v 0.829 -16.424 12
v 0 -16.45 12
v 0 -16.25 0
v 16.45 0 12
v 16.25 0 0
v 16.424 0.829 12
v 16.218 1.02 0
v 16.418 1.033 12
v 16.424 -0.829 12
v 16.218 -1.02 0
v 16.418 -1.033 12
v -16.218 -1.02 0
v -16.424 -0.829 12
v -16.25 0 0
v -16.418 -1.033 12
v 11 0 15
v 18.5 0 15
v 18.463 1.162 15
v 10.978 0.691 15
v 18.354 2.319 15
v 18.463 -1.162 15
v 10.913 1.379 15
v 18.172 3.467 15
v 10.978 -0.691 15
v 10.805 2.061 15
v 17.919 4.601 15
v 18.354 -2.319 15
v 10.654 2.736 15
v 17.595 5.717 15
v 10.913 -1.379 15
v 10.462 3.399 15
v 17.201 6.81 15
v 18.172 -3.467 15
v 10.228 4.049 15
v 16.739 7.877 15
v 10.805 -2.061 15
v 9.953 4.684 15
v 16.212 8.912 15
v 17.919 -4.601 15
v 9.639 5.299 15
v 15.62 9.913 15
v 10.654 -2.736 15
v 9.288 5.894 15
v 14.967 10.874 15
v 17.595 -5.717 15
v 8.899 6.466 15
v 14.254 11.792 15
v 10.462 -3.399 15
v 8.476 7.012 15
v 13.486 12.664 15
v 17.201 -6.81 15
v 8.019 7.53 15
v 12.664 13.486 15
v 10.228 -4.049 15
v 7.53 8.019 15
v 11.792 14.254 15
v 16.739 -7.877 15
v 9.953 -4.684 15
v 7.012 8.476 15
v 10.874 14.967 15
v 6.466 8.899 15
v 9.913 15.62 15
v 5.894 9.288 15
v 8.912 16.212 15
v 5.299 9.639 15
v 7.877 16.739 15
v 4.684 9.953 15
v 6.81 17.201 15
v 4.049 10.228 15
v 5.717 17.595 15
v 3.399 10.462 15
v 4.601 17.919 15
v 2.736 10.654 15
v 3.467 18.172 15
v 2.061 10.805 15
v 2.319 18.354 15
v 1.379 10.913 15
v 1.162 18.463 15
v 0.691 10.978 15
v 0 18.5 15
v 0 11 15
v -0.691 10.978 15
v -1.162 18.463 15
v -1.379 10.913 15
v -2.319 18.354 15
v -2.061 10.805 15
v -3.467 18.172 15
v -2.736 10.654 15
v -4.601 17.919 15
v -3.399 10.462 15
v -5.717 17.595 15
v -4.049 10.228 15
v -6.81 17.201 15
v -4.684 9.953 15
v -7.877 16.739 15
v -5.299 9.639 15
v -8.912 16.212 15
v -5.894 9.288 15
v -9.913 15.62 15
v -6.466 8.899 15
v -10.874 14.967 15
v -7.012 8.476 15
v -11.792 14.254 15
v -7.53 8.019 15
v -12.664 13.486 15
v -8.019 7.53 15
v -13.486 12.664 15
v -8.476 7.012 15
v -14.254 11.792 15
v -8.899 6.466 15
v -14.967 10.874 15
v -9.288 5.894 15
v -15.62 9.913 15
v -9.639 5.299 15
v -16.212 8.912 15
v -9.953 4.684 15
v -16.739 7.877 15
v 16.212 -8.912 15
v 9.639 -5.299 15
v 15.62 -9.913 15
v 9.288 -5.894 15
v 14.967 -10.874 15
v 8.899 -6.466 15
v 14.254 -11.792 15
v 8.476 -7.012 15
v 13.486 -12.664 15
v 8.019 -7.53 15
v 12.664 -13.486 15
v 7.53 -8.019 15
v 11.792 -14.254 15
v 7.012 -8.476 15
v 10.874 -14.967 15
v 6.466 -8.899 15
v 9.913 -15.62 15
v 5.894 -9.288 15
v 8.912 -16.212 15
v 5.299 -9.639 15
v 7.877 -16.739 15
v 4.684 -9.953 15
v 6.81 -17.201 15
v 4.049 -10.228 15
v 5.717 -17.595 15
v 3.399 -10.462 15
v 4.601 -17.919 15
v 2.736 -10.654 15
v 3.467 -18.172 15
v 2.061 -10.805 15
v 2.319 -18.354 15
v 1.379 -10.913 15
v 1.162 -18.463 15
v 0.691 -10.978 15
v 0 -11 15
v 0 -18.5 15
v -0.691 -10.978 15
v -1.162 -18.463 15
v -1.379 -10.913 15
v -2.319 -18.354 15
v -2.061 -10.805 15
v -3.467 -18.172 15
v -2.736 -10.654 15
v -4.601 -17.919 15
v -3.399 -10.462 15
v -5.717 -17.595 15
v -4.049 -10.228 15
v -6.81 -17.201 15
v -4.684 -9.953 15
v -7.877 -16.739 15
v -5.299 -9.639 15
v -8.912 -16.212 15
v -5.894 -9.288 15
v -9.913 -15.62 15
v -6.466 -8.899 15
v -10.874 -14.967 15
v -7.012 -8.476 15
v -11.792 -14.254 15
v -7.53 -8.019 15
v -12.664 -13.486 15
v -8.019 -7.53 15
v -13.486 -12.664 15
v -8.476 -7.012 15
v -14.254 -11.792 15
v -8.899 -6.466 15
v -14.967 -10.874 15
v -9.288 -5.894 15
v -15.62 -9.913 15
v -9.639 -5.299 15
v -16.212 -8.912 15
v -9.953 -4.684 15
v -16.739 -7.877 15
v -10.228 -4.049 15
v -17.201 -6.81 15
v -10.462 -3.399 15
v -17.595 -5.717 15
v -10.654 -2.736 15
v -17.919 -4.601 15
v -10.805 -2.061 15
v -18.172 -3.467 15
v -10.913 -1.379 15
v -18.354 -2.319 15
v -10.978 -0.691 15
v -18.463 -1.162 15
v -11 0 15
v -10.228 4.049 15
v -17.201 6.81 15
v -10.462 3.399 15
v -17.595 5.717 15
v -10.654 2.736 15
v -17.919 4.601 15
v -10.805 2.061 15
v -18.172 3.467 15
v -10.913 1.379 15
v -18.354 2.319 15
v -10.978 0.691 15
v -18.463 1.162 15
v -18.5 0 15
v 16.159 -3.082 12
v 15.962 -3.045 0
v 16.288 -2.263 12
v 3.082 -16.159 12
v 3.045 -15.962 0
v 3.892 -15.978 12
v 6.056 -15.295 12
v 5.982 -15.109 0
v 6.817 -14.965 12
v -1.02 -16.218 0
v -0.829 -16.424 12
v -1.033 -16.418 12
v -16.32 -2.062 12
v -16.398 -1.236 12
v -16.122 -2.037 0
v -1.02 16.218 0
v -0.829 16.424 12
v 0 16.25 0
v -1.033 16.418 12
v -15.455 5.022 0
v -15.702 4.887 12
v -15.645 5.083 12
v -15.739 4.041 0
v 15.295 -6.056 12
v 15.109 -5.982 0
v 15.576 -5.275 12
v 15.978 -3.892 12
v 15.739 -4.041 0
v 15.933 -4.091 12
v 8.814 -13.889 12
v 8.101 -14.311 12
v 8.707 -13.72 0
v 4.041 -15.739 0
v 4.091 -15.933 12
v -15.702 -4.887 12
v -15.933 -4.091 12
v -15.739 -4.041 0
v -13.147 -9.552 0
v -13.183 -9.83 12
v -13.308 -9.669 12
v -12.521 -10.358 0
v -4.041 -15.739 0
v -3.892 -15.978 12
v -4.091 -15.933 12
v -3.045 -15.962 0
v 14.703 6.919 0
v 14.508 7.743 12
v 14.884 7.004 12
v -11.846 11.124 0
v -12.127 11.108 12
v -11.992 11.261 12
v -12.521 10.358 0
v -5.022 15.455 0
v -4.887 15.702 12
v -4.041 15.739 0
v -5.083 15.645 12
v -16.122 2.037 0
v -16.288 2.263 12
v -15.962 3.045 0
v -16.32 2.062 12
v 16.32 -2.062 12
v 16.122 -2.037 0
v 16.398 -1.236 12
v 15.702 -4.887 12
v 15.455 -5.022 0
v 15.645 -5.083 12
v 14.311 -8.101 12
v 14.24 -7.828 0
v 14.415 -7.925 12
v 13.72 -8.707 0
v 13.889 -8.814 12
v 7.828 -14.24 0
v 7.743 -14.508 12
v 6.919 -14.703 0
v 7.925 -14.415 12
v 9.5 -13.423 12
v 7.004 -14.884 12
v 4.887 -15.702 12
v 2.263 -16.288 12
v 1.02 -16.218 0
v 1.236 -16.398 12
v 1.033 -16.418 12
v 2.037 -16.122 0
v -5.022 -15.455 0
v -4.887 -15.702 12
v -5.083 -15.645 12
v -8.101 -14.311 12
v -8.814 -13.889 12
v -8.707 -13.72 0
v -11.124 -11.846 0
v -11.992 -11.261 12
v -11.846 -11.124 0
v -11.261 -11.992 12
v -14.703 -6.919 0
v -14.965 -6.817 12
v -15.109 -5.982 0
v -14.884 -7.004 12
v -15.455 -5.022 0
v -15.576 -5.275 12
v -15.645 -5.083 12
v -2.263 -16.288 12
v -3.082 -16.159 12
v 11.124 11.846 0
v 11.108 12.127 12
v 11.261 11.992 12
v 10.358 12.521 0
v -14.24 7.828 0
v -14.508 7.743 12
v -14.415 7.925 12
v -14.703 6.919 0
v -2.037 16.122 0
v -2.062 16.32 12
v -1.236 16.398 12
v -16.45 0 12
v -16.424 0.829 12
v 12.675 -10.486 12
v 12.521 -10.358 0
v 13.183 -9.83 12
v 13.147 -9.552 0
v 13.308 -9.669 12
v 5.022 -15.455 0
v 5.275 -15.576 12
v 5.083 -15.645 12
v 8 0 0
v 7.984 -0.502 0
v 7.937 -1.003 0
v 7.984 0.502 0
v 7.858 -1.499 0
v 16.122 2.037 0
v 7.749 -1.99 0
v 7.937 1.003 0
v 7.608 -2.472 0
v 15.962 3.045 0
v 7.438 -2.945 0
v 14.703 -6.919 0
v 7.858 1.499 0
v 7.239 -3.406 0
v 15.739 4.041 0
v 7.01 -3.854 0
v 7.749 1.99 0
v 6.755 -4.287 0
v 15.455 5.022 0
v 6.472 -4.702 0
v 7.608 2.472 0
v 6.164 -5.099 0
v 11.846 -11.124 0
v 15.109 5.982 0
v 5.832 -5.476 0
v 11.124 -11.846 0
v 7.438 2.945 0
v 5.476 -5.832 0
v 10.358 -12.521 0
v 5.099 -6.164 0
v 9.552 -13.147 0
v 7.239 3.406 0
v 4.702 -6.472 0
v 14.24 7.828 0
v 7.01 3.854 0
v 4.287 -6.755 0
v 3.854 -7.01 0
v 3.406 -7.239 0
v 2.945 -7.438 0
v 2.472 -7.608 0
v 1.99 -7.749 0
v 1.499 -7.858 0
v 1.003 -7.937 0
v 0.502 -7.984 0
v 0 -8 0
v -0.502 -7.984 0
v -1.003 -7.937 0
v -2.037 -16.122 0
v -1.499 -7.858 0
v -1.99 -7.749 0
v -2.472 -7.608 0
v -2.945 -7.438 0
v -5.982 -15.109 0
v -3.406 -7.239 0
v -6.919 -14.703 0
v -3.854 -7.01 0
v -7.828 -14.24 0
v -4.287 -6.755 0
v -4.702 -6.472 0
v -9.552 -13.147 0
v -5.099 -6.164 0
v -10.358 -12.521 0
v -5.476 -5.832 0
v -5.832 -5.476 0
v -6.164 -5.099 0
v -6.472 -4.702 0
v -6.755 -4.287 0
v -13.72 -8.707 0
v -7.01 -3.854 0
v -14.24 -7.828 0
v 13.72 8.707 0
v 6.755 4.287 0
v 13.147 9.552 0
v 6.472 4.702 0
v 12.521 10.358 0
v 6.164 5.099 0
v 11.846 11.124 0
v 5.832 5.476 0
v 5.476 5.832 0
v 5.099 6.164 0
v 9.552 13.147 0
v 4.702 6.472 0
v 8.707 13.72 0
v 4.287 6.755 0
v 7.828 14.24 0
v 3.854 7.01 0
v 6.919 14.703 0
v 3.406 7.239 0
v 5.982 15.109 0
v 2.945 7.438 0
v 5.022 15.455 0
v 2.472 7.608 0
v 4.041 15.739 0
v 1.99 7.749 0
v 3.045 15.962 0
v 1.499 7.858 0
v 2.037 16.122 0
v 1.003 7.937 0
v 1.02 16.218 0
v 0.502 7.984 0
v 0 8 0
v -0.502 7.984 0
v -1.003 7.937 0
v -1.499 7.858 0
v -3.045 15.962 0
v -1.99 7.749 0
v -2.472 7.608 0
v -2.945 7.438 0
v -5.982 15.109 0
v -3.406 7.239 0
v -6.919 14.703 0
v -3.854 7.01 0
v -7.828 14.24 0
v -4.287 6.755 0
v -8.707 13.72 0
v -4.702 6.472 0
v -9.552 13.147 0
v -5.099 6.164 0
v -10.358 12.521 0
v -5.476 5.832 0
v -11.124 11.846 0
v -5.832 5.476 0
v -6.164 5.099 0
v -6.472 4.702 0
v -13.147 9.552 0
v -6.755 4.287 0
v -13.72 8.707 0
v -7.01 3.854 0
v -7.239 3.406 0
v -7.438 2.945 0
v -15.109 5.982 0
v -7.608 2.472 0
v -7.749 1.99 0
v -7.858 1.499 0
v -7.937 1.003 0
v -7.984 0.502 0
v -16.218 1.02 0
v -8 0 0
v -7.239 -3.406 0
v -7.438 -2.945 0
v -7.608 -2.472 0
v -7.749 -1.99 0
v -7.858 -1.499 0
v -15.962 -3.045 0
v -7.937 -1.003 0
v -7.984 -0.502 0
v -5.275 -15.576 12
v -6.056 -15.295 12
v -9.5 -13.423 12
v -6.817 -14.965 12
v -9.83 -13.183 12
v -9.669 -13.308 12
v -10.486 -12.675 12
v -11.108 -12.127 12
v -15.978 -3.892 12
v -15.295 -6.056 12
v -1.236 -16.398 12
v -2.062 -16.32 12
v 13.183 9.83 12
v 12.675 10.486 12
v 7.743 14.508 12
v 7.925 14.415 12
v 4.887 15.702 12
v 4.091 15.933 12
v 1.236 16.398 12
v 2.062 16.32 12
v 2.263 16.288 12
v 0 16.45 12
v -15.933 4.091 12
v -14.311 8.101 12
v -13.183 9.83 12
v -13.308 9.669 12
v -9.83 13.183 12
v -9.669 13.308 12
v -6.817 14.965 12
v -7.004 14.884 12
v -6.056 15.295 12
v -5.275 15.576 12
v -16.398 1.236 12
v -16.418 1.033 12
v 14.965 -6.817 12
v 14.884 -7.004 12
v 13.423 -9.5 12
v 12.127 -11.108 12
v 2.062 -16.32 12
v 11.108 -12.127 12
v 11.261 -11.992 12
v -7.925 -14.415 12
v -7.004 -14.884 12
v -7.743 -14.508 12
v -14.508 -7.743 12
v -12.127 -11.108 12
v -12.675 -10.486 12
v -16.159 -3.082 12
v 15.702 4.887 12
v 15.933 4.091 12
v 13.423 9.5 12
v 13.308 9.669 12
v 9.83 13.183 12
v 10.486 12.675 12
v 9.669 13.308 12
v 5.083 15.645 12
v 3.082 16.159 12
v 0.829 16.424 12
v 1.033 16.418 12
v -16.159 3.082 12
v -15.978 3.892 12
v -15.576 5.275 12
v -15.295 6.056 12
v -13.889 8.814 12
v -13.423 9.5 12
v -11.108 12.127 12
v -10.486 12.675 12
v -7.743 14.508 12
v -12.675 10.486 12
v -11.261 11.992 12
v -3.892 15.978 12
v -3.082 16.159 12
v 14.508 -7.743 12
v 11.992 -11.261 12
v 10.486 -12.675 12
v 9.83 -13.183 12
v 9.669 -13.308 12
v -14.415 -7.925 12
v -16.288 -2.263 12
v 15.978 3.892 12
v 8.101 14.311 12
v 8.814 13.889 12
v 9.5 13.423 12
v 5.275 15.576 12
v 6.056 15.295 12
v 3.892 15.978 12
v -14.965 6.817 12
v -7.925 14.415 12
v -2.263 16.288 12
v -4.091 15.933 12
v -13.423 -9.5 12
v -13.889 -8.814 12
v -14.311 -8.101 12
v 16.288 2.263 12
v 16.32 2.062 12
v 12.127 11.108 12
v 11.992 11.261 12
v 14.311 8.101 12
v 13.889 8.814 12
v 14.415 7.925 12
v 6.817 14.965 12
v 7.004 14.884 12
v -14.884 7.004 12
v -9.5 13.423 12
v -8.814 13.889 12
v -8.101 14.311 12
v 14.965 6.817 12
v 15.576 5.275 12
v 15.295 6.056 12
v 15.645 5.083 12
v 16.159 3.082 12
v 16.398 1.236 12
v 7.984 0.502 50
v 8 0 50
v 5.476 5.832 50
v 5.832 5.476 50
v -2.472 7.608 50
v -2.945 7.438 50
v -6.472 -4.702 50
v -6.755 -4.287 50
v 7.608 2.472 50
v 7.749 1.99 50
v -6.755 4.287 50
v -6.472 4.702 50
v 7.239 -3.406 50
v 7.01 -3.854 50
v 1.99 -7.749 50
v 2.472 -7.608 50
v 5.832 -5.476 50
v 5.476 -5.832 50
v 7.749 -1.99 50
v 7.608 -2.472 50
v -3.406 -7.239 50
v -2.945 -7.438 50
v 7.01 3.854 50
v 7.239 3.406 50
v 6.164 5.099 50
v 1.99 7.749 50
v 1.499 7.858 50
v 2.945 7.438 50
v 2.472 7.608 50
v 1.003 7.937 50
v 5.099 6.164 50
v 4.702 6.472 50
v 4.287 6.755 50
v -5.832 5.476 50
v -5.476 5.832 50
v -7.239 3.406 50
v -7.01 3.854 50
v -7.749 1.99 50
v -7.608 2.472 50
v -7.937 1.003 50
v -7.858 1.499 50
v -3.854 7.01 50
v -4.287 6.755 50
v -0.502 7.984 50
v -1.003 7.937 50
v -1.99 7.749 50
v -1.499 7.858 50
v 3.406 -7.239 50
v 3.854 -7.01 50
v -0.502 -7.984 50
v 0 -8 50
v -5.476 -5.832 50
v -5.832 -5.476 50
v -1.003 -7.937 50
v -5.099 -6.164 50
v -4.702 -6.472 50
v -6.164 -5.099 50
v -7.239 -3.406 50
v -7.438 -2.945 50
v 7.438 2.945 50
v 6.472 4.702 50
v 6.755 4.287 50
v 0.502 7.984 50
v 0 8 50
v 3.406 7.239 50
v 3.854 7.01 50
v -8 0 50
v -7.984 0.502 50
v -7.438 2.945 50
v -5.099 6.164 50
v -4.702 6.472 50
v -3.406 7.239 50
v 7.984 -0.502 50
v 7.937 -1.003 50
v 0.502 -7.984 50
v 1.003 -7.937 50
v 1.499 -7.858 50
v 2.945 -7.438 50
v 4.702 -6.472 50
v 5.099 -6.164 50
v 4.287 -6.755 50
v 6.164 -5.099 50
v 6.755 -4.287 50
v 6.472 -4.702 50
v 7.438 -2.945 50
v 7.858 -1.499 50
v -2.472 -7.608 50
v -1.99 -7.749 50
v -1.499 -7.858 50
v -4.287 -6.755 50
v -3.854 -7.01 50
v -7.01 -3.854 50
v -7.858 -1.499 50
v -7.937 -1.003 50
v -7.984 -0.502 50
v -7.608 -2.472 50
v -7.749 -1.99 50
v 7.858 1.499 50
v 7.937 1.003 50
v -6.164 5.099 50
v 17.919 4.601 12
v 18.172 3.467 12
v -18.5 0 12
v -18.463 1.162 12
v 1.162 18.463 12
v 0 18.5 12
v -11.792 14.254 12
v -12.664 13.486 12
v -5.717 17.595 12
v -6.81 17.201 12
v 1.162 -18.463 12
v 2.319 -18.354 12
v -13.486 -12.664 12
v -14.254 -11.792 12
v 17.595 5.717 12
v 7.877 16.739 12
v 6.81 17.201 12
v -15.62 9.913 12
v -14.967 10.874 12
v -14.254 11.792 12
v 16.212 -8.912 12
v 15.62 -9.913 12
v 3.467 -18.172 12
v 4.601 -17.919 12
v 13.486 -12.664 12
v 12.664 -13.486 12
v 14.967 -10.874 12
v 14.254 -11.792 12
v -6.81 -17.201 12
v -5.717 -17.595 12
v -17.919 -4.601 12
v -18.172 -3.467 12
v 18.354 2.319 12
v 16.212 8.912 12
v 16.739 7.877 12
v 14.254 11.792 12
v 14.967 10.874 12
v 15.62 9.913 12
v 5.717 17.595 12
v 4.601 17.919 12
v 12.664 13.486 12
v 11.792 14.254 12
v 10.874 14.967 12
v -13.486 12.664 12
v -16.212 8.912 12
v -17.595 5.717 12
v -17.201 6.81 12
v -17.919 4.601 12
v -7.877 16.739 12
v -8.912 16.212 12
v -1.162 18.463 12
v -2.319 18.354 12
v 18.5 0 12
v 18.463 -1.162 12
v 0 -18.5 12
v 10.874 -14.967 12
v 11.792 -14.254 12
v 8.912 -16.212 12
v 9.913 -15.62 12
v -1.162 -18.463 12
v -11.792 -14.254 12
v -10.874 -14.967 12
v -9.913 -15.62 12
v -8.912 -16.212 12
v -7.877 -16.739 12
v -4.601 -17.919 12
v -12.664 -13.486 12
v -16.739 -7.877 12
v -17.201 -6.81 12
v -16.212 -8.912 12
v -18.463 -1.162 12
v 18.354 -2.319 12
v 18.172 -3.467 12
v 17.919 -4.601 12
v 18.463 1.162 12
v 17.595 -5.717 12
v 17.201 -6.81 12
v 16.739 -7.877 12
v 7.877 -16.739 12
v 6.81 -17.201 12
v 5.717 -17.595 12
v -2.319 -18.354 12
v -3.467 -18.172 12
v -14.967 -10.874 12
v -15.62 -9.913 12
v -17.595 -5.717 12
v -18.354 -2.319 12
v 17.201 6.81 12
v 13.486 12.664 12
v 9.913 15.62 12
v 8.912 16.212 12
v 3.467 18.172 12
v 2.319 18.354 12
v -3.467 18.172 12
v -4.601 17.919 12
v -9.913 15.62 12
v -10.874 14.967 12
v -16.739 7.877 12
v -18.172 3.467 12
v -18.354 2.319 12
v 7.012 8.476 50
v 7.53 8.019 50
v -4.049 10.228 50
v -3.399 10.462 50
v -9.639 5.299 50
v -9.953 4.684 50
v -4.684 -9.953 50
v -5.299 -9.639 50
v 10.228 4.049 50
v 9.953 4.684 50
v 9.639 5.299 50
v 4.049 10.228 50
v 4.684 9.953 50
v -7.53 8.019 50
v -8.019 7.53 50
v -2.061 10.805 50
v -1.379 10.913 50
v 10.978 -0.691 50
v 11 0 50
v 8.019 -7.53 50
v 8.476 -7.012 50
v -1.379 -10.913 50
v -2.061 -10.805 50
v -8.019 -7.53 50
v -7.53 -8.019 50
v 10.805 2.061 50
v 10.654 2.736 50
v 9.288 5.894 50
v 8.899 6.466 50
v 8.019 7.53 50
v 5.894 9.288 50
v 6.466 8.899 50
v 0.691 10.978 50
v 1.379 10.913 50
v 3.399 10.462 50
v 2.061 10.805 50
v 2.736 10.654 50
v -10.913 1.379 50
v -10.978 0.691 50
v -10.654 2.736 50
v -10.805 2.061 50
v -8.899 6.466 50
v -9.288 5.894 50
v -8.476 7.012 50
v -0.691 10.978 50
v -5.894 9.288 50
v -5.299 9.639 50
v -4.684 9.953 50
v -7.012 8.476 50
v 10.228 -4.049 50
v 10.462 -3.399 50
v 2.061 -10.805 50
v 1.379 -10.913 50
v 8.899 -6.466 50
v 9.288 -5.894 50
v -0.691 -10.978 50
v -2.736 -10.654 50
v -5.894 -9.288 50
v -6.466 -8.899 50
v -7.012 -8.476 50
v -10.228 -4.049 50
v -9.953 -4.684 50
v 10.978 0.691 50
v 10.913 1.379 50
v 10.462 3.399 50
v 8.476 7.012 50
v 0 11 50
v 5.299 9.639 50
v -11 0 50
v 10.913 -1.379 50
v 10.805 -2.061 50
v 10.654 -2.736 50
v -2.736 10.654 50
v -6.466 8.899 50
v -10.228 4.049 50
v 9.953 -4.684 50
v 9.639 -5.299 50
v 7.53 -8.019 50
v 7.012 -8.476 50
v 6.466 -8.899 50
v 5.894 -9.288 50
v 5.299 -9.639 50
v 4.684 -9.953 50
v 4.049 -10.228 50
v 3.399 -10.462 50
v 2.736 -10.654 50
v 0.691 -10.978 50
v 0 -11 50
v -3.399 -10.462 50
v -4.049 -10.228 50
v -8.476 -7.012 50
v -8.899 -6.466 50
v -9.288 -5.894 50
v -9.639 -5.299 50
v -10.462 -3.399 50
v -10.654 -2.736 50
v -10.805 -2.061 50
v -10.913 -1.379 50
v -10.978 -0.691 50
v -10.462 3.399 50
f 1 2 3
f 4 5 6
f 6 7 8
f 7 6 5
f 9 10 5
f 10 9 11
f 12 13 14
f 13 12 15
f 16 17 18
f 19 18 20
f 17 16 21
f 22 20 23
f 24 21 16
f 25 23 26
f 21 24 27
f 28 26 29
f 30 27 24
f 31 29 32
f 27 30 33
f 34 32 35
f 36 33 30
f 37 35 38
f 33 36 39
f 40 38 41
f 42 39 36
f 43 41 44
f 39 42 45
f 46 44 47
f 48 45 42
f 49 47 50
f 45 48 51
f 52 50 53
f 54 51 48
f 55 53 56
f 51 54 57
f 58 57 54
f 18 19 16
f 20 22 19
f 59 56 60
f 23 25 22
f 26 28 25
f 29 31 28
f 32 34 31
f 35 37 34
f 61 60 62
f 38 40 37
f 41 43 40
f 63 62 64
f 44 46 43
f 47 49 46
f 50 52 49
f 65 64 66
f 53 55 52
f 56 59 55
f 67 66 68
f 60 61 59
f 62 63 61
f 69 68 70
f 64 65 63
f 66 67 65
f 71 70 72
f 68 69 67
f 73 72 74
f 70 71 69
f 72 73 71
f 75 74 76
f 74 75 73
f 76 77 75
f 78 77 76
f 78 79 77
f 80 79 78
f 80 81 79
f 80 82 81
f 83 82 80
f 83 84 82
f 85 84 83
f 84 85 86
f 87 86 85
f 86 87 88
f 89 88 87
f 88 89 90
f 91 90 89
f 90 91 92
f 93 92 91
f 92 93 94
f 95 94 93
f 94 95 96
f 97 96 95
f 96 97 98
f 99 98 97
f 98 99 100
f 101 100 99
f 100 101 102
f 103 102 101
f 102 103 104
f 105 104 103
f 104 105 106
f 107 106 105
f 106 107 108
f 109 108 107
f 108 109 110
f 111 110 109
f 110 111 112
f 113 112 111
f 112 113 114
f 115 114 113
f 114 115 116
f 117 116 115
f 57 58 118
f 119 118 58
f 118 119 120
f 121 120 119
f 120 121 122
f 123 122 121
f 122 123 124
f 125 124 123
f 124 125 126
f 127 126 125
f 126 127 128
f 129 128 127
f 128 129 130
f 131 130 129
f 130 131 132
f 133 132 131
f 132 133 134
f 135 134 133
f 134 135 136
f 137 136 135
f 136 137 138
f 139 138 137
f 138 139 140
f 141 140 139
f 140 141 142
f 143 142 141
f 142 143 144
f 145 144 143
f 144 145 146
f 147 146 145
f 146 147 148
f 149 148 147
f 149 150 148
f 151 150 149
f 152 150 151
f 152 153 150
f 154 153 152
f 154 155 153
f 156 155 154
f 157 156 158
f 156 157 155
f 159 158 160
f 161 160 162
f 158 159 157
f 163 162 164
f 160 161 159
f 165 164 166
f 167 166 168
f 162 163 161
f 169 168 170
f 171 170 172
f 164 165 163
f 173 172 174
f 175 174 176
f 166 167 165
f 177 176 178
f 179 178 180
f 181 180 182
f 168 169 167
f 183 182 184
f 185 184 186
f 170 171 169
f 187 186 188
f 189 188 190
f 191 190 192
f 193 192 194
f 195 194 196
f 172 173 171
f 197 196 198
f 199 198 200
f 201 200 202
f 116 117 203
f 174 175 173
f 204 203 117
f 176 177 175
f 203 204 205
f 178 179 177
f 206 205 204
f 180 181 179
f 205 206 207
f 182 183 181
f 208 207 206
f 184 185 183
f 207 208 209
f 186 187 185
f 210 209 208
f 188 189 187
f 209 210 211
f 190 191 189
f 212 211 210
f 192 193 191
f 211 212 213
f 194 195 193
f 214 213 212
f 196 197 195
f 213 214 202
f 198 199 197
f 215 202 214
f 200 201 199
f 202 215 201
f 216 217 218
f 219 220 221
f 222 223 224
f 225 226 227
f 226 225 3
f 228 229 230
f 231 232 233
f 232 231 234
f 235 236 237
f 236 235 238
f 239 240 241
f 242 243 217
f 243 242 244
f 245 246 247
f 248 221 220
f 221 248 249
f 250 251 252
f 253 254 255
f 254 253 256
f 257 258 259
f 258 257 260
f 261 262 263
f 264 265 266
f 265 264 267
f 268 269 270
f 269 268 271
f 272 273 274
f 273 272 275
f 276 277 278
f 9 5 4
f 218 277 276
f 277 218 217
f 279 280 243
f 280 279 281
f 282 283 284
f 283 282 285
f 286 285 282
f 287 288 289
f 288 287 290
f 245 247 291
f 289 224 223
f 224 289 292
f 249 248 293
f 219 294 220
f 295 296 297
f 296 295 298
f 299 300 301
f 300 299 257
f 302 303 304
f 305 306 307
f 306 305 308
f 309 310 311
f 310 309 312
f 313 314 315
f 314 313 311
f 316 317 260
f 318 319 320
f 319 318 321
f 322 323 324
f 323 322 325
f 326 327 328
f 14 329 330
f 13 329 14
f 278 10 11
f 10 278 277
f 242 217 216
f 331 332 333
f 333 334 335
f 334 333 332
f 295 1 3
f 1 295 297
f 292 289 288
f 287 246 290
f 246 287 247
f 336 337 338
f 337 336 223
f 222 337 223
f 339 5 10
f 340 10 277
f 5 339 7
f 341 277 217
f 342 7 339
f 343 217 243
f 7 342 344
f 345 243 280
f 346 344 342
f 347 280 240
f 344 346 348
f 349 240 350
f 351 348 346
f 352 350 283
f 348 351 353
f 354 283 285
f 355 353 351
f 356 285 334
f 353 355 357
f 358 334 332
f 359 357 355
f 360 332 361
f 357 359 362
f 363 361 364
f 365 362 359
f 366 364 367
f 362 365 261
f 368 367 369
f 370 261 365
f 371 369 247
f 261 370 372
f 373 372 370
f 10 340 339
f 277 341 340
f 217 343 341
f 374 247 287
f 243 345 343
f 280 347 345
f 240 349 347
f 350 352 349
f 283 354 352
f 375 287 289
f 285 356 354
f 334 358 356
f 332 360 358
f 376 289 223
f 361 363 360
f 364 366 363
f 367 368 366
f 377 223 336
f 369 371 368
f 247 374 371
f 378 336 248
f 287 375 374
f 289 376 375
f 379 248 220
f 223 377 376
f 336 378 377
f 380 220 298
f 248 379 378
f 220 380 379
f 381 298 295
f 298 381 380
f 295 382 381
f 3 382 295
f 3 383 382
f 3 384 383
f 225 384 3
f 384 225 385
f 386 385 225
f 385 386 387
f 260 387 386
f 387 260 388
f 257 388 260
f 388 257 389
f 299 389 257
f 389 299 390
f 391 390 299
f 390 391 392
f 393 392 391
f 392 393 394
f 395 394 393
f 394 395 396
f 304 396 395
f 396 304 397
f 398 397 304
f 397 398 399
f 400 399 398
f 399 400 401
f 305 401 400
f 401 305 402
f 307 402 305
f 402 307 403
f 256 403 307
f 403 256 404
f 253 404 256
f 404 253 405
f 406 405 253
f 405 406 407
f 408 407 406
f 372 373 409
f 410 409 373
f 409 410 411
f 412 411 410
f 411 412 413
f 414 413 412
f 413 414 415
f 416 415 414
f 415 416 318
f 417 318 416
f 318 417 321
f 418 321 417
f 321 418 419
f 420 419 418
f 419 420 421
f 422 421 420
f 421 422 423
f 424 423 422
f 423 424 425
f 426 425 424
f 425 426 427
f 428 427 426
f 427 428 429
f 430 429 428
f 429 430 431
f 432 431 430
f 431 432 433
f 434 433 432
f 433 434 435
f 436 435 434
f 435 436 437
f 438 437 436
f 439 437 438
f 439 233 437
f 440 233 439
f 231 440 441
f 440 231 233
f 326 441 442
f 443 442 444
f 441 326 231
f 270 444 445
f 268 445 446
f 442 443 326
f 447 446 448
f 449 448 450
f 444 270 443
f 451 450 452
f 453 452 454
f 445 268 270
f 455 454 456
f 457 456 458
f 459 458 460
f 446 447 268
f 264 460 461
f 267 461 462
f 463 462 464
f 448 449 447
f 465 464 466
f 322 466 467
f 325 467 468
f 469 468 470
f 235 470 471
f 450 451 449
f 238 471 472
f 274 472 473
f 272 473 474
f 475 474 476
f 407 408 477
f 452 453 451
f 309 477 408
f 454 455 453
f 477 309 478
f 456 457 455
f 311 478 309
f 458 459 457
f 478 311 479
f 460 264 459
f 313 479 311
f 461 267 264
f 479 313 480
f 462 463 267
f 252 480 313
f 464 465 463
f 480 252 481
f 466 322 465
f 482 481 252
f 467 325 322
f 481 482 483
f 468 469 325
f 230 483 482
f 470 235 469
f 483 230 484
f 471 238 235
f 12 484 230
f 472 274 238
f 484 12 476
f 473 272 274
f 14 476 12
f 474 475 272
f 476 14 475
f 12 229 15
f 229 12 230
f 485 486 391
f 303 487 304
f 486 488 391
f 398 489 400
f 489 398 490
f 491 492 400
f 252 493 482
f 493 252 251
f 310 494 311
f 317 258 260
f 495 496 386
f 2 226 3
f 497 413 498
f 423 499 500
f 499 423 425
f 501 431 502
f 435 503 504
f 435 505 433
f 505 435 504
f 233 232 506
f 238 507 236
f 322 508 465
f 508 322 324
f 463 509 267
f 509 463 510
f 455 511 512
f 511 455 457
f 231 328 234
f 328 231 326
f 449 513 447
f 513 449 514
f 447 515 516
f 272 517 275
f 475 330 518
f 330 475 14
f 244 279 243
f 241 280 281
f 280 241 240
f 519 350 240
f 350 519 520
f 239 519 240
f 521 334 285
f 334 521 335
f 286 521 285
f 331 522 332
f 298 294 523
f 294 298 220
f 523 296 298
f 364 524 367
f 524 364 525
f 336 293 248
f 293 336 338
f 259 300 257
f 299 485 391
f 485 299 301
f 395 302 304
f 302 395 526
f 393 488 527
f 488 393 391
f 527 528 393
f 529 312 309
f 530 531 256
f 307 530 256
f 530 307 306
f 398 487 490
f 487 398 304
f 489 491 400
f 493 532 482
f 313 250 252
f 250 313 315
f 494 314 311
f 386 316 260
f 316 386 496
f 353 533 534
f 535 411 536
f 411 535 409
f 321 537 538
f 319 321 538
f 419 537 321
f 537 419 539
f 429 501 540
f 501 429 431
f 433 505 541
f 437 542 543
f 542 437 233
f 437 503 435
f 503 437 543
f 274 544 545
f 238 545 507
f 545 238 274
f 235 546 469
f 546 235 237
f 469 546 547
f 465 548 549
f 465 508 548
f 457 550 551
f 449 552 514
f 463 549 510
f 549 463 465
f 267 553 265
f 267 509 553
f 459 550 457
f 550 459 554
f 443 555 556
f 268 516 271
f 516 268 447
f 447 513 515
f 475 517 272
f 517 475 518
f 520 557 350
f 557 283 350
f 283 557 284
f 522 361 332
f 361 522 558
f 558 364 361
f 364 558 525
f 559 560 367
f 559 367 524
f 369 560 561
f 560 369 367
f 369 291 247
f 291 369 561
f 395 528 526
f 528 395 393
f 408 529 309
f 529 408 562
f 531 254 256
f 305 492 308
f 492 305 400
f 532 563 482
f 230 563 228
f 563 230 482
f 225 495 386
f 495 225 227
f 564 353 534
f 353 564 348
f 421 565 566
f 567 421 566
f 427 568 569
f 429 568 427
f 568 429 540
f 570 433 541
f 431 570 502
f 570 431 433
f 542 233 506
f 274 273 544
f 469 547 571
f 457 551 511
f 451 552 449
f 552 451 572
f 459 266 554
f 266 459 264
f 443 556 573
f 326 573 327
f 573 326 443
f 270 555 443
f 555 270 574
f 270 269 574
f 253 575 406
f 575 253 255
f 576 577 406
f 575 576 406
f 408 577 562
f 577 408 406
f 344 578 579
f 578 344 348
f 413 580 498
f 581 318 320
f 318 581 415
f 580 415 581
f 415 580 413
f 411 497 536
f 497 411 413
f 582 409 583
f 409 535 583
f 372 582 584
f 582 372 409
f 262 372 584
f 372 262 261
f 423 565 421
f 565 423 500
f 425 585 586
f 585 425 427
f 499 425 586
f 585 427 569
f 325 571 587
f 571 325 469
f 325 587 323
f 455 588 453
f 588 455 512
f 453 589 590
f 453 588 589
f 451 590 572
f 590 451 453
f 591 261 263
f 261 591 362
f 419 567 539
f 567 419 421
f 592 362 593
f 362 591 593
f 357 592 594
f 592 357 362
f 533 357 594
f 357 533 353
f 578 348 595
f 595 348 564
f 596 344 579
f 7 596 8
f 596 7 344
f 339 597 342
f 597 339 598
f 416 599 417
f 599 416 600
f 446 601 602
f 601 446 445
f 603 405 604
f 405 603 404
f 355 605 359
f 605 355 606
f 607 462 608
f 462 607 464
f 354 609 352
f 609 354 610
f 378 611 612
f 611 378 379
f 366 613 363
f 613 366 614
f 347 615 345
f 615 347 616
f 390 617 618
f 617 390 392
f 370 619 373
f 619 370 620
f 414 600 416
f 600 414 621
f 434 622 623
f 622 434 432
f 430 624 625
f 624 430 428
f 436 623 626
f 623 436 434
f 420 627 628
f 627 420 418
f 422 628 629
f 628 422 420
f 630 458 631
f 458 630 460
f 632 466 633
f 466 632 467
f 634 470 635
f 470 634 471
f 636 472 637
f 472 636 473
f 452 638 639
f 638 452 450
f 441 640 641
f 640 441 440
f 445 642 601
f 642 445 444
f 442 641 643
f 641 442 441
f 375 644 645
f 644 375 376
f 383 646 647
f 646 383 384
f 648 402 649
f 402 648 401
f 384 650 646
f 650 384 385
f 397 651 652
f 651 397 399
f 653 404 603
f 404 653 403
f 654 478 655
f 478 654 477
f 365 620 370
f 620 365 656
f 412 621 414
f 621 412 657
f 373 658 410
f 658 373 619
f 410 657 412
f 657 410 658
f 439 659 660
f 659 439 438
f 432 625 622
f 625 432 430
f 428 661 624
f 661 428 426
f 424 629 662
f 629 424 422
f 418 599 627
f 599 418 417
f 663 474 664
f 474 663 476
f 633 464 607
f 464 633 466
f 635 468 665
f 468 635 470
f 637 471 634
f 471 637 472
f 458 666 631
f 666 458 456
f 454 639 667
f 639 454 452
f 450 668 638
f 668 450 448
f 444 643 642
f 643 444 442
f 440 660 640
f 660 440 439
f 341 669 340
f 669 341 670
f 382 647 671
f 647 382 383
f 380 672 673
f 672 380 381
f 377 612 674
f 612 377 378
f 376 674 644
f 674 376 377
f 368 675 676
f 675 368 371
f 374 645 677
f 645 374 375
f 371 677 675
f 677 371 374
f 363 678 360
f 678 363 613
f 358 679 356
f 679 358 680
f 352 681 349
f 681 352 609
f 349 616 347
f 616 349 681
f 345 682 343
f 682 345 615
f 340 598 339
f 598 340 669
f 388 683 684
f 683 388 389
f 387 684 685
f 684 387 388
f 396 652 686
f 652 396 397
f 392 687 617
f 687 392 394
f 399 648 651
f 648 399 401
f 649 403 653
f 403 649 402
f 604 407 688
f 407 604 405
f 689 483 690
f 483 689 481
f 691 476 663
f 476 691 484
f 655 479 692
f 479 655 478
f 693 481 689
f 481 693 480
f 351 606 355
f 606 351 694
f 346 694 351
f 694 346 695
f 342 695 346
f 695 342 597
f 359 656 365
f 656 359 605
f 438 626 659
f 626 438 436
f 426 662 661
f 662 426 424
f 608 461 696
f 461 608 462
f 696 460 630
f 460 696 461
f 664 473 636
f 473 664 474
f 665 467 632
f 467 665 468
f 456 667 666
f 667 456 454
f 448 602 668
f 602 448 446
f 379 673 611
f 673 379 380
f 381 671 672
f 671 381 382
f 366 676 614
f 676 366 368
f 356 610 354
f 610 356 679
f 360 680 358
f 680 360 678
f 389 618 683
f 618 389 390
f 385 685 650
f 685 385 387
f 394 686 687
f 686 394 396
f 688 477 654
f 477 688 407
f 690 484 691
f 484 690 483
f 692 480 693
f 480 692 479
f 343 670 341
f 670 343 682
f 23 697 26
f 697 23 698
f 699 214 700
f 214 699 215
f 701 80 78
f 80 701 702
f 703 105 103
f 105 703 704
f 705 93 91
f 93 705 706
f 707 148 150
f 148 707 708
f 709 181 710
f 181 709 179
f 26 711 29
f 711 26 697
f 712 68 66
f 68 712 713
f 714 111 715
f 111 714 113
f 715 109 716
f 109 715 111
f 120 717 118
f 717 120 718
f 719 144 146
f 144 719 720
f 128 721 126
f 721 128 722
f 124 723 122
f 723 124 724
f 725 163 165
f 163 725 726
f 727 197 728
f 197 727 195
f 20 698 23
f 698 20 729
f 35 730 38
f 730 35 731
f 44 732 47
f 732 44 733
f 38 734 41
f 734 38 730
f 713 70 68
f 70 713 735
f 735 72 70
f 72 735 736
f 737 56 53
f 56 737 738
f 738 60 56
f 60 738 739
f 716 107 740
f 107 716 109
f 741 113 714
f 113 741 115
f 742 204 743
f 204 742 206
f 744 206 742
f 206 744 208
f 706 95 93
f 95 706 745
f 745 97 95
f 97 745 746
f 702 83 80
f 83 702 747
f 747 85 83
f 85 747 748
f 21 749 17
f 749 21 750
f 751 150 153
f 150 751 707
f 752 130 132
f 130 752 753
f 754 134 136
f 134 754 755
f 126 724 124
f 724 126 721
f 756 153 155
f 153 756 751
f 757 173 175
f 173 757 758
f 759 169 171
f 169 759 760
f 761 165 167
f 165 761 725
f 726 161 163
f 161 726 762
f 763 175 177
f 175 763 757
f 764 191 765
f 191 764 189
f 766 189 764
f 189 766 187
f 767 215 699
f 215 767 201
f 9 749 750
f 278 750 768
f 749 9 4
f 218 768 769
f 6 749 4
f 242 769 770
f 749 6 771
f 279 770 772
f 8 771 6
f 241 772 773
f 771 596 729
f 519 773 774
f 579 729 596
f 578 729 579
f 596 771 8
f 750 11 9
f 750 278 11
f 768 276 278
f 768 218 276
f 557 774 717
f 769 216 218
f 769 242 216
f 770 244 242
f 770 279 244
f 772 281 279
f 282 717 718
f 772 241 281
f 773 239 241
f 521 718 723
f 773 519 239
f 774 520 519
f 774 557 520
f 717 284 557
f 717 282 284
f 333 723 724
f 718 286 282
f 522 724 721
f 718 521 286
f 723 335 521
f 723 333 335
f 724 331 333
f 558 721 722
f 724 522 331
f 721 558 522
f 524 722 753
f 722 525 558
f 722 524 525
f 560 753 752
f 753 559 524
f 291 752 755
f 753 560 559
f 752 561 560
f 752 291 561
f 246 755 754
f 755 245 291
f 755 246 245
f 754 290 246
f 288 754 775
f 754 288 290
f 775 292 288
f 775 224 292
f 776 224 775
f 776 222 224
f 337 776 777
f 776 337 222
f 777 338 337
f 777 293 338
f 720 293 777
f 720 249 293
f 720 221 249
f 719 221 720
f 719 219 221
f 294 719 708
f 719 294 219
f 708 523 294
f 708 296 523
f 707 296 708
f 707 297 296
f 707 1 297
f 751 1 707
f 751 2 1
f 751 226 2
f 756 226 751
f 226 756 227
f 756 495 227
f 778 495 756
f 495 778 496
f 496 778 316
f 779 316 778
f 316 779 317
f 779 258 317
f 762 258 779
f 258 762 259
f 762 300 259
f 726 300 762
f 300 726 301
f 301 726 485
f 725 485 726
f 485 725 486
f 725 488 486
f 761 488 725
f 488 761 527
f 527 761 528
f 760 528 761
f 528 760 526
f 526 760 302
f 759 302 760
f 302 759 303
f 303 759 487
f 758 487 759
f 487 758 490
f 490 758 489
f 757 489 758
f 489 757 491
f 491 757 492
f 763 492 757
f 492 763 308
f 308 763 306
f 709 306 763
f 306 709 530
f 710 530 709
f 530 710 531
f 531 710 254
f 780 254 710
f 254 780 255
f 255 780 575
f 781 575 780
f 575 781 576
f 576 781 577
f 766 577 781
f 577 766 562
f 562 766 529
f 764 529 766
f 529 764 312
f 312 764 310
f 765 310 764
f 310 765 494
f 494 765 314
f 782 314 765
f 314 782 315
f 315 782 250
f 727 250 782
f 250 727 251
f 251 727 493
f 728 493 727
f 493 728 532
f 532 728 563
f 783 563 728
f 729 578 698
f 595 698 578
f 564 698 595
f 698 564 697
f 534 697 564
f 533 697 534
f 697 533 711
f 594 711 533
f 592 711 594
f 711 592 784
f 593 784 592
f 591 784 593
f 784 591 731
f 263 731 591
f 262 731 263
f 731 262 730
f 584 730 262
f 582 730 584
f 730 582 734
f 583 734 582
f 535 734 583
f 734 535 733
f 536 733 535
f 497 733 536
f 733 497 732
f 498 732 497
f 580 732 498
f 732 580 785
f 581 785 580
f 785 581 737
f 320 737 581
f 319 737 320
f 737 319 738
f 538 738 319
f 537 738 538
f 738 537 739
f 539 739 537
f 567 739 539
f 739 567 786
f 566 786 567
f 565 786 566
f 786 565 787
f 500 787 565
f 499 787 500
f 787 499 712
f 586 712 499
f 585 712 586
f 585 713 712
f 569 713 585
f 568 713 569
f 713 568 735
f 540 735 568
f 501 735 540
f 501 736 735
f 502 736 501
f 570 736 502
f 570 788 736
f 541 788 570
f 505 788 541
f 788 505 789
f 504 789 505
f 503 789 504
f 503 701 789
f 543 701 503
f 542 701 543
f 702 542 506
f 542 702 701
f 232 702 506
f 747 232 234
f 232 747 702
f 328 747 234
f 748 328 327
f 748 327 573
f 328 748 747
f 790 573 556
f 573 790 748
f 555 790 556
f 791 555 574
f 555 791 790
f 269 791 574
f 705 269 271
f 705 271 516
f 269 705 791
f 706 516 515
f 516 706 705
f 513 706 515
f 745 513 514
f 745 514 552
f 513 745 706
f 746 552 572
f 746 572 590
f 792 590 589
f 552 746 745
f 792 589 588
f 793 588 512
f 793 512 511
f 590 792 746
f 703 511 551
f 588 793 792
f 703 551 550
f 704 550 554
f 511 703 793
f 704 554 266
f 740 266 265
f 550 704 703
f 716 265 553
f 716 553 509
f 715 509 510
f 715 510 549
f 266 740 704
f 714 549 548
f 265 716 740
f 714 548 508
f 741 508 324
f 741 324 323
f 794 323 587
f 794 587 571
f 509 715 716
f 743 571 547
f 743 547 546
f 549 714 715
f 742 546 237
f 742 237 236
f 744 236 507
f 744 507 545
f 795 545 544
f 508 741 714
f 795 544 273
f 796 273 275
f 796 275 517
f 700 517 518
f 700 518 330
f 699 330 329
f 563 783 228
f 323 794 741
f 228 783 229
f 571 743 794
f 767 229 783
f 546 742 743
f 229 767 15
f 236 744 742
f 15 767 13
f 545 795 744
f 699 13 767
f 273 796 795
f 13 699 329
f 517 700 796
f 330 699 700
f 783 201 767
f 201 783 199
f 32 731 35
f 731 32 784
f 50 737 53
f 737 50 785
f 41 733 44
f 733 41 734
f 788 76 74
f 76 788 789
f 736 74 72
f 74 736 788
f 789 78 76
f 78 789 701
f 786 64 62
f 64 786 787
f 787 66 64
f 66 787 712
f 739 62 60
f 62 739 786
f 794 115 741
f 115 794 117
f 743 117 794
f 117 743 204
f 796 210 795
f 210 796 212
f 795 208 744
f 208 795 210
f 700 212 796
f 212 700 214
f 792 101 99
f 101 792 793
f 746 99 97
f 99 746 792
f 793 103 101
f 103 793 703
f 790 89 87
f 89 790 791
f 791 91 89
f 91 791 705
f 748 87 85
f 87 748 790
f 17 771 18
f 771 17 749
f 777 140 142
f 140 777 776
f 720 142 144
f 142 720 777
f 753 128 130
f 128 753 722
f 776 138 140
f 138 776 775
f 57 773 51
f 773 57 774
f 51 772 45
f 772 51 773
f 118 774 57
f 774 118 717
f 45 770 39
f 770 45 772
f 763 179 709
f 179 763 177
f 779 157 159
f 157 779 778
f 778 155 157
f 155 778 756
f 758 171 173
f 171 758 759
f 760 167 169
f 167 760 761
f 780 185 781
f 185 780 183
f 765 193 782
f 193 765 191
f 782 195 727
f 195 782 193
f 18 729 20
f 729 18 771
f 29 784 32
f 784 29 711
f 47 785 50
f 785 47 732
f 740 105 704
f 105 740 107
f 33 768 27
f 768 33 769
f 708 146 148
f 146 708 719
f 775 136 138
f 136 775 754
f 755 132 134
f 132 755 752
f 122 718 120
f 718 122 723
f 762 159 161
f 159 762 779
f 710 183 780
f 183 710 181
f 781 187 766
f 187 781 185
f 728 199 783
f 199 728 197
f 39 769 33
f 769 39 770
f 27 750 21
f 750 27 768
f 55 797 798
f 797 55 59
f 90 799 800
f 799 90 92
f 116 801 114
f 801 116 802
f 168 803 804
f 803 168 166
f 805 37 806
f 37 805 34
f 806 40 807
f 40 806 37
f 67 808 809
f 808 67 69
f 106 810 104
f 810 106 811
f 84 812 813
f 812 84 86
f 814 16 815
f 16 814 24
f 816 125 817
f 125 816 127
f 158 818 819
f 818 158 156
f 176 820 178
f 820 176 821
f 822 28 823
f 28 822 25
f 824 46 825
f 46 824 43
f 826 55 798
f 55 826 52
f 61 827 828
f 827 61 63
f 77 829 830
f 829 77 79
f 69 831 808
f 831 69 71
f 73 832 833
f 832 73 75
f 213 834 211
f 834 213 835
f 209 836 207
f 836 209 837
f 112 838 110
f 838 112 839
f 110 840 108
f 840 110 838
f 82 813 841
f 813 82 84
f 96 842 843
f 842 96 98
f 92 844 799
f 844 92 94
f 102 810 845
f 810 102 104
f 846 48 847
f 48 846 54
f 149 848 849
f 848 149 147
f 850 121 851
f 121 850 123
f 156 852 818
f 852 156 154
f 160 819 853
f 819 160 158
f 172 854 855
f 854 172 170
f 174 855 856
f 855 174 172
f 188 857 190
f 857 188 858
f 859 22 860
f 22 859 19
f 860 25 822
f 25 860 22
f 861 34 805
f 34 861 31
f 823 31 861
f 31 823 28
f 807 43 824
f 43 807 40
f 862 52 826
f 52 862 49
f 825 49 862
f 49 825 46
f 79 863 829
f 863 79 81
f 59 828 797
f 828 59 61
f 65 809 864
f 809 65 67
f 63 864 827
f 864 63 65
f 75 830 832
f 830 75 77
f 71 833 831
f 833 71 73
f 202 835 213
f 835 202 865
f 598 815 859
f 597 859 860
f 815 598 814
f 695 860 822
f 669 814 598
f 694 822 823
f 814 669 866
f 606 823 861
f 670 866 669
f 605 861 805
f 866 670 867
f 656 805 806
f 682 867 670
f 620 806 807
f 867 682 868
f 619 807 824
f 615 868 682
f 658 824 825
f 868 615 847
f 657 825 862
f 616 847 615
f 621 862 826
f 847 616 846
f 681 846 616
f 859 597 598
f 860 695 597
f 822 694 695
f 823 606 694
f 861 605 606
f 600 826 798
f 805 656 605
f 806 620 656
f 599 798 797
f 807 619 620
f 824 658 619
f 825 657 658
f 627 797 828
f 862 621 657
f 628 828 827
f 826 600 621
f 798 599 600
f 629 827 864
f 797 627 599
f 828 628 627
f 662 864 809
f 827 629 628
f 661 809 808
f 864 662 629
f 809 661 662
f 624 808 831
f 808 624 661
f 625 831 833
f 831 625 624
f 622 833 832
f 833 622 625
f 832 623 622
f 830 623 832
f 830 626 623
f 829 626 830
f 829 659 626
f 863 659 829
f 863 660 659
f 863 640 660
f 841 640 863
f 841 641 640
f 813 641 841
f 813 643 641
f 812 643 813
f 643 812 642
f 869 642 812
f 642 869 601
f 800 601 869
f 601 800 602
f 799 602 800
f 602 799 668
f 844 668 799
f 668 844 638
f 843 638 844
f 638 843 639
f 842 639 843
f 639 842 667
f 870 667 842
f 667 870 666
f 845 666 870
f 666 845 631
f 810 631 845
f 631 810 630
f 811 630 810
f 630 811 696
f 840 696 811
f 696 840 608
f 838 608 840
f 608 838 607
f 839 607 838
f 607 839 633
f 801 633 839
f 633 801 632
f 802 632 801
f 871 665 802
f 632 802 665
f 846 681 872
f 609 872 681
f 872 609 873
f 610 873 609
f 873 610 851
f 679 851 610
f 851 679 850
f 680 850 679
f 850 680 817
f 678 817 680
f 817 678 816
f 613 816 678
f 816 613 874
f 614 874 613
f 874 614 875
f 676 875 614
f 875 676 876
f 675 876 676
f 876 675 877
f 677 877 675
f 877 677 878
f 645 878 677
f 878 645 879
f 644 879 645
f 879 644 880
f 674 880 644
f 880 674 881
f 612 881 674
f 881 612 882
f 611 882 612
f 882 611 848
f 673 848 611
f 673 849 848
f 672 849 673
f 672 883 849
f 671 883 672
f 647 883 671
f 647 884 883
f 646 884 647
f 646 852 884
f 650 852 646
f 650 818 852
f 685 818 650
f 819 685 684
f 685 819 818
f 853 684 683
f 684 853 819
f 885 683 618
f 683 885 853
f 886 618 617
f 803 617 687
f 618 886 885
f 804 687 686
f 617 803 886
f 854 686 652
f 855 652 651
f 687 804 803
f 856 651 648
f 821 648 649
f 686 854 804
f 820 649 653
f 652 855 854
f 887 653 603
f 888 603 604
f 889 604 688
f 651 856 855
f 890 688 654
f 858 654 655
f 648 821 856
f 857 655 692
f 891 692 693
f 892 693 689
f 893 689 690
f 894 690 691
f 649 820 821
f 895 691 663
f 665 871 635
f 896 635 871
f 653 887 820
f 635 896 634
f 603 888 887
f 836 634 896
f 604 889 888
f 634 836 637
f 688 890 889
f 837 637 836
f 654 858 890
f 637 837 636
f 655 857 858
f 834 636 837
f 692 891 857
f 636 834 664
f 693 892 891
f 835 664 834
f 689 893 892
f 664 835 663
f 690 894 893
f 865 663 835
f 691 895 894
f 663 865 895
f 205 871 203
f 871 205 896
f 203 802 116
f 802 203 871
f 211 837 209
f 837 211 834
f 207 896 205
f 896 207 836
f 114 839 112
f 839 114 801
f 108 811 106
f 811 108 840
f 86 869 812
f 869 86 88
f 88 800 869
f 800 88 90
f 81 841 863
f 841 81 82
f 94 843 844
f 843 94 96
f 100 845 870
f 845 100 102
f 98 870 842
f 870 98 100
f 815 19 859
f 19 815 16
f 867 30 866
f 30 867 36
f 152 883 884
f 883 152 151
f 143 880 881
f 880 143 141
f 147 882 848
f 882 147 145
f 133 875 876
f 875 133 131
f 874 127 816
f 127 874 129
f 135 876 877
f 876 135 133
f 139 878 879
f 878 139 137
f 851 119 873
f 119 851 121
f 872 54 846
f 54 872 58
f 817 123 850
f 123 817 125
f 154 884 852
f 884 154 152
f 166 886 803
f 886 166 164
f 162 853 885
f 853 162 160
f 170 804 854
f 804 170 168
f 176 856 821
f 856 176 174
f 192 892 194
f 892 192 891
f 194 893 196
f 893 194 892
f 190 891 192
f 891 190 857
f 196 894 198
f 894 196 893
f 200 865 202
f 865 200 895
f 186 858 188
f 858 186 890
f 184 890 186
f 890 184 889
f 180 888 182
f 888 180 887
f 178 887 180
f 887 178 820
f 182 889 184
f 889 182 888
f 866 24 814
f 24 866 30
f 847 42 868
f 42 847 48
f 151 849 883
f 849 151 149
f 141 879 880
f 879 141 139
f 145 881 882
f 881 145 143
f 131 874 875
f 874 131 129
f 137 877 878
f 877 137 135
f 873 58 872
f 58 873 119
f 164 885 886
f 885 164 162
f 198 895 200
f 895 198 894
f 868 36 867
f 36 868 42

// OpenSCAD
//wind mount (fitting to wind sensors)


$fn=100;

LPR=16.5;
SPR=8;      //enter pvc pipe radii here (for standard 1" PVC fitting, LPR=16.90; for standard 1" PVC pipe, LPR=13.80; for standard 3/4" CPVC, SPR=11.2; for 32mm (Malawi, Zimbabwe) LPR = 16.5 for fittings; 13.3 for pipe)



//fitting adapter
union(){
    difference(){
        cylinder(15,LPR-0.25,LPR);
        translate([0,0,-1]) cylinder(25,SPR,SPR);
        }

    translate([0,0,12]) difference(){
        cylinder(3,LPR+2,LPR+2);
        translate([0,0,-1])cylinder(25,SPR,SPR);
        }
}

//wind mount piece (cpvc)
difference(){
    translate([0,0,0]) cylinder(50,11,11);
    translate([0,0,-5]) cylinder(160,SPR,SPR);
    }
